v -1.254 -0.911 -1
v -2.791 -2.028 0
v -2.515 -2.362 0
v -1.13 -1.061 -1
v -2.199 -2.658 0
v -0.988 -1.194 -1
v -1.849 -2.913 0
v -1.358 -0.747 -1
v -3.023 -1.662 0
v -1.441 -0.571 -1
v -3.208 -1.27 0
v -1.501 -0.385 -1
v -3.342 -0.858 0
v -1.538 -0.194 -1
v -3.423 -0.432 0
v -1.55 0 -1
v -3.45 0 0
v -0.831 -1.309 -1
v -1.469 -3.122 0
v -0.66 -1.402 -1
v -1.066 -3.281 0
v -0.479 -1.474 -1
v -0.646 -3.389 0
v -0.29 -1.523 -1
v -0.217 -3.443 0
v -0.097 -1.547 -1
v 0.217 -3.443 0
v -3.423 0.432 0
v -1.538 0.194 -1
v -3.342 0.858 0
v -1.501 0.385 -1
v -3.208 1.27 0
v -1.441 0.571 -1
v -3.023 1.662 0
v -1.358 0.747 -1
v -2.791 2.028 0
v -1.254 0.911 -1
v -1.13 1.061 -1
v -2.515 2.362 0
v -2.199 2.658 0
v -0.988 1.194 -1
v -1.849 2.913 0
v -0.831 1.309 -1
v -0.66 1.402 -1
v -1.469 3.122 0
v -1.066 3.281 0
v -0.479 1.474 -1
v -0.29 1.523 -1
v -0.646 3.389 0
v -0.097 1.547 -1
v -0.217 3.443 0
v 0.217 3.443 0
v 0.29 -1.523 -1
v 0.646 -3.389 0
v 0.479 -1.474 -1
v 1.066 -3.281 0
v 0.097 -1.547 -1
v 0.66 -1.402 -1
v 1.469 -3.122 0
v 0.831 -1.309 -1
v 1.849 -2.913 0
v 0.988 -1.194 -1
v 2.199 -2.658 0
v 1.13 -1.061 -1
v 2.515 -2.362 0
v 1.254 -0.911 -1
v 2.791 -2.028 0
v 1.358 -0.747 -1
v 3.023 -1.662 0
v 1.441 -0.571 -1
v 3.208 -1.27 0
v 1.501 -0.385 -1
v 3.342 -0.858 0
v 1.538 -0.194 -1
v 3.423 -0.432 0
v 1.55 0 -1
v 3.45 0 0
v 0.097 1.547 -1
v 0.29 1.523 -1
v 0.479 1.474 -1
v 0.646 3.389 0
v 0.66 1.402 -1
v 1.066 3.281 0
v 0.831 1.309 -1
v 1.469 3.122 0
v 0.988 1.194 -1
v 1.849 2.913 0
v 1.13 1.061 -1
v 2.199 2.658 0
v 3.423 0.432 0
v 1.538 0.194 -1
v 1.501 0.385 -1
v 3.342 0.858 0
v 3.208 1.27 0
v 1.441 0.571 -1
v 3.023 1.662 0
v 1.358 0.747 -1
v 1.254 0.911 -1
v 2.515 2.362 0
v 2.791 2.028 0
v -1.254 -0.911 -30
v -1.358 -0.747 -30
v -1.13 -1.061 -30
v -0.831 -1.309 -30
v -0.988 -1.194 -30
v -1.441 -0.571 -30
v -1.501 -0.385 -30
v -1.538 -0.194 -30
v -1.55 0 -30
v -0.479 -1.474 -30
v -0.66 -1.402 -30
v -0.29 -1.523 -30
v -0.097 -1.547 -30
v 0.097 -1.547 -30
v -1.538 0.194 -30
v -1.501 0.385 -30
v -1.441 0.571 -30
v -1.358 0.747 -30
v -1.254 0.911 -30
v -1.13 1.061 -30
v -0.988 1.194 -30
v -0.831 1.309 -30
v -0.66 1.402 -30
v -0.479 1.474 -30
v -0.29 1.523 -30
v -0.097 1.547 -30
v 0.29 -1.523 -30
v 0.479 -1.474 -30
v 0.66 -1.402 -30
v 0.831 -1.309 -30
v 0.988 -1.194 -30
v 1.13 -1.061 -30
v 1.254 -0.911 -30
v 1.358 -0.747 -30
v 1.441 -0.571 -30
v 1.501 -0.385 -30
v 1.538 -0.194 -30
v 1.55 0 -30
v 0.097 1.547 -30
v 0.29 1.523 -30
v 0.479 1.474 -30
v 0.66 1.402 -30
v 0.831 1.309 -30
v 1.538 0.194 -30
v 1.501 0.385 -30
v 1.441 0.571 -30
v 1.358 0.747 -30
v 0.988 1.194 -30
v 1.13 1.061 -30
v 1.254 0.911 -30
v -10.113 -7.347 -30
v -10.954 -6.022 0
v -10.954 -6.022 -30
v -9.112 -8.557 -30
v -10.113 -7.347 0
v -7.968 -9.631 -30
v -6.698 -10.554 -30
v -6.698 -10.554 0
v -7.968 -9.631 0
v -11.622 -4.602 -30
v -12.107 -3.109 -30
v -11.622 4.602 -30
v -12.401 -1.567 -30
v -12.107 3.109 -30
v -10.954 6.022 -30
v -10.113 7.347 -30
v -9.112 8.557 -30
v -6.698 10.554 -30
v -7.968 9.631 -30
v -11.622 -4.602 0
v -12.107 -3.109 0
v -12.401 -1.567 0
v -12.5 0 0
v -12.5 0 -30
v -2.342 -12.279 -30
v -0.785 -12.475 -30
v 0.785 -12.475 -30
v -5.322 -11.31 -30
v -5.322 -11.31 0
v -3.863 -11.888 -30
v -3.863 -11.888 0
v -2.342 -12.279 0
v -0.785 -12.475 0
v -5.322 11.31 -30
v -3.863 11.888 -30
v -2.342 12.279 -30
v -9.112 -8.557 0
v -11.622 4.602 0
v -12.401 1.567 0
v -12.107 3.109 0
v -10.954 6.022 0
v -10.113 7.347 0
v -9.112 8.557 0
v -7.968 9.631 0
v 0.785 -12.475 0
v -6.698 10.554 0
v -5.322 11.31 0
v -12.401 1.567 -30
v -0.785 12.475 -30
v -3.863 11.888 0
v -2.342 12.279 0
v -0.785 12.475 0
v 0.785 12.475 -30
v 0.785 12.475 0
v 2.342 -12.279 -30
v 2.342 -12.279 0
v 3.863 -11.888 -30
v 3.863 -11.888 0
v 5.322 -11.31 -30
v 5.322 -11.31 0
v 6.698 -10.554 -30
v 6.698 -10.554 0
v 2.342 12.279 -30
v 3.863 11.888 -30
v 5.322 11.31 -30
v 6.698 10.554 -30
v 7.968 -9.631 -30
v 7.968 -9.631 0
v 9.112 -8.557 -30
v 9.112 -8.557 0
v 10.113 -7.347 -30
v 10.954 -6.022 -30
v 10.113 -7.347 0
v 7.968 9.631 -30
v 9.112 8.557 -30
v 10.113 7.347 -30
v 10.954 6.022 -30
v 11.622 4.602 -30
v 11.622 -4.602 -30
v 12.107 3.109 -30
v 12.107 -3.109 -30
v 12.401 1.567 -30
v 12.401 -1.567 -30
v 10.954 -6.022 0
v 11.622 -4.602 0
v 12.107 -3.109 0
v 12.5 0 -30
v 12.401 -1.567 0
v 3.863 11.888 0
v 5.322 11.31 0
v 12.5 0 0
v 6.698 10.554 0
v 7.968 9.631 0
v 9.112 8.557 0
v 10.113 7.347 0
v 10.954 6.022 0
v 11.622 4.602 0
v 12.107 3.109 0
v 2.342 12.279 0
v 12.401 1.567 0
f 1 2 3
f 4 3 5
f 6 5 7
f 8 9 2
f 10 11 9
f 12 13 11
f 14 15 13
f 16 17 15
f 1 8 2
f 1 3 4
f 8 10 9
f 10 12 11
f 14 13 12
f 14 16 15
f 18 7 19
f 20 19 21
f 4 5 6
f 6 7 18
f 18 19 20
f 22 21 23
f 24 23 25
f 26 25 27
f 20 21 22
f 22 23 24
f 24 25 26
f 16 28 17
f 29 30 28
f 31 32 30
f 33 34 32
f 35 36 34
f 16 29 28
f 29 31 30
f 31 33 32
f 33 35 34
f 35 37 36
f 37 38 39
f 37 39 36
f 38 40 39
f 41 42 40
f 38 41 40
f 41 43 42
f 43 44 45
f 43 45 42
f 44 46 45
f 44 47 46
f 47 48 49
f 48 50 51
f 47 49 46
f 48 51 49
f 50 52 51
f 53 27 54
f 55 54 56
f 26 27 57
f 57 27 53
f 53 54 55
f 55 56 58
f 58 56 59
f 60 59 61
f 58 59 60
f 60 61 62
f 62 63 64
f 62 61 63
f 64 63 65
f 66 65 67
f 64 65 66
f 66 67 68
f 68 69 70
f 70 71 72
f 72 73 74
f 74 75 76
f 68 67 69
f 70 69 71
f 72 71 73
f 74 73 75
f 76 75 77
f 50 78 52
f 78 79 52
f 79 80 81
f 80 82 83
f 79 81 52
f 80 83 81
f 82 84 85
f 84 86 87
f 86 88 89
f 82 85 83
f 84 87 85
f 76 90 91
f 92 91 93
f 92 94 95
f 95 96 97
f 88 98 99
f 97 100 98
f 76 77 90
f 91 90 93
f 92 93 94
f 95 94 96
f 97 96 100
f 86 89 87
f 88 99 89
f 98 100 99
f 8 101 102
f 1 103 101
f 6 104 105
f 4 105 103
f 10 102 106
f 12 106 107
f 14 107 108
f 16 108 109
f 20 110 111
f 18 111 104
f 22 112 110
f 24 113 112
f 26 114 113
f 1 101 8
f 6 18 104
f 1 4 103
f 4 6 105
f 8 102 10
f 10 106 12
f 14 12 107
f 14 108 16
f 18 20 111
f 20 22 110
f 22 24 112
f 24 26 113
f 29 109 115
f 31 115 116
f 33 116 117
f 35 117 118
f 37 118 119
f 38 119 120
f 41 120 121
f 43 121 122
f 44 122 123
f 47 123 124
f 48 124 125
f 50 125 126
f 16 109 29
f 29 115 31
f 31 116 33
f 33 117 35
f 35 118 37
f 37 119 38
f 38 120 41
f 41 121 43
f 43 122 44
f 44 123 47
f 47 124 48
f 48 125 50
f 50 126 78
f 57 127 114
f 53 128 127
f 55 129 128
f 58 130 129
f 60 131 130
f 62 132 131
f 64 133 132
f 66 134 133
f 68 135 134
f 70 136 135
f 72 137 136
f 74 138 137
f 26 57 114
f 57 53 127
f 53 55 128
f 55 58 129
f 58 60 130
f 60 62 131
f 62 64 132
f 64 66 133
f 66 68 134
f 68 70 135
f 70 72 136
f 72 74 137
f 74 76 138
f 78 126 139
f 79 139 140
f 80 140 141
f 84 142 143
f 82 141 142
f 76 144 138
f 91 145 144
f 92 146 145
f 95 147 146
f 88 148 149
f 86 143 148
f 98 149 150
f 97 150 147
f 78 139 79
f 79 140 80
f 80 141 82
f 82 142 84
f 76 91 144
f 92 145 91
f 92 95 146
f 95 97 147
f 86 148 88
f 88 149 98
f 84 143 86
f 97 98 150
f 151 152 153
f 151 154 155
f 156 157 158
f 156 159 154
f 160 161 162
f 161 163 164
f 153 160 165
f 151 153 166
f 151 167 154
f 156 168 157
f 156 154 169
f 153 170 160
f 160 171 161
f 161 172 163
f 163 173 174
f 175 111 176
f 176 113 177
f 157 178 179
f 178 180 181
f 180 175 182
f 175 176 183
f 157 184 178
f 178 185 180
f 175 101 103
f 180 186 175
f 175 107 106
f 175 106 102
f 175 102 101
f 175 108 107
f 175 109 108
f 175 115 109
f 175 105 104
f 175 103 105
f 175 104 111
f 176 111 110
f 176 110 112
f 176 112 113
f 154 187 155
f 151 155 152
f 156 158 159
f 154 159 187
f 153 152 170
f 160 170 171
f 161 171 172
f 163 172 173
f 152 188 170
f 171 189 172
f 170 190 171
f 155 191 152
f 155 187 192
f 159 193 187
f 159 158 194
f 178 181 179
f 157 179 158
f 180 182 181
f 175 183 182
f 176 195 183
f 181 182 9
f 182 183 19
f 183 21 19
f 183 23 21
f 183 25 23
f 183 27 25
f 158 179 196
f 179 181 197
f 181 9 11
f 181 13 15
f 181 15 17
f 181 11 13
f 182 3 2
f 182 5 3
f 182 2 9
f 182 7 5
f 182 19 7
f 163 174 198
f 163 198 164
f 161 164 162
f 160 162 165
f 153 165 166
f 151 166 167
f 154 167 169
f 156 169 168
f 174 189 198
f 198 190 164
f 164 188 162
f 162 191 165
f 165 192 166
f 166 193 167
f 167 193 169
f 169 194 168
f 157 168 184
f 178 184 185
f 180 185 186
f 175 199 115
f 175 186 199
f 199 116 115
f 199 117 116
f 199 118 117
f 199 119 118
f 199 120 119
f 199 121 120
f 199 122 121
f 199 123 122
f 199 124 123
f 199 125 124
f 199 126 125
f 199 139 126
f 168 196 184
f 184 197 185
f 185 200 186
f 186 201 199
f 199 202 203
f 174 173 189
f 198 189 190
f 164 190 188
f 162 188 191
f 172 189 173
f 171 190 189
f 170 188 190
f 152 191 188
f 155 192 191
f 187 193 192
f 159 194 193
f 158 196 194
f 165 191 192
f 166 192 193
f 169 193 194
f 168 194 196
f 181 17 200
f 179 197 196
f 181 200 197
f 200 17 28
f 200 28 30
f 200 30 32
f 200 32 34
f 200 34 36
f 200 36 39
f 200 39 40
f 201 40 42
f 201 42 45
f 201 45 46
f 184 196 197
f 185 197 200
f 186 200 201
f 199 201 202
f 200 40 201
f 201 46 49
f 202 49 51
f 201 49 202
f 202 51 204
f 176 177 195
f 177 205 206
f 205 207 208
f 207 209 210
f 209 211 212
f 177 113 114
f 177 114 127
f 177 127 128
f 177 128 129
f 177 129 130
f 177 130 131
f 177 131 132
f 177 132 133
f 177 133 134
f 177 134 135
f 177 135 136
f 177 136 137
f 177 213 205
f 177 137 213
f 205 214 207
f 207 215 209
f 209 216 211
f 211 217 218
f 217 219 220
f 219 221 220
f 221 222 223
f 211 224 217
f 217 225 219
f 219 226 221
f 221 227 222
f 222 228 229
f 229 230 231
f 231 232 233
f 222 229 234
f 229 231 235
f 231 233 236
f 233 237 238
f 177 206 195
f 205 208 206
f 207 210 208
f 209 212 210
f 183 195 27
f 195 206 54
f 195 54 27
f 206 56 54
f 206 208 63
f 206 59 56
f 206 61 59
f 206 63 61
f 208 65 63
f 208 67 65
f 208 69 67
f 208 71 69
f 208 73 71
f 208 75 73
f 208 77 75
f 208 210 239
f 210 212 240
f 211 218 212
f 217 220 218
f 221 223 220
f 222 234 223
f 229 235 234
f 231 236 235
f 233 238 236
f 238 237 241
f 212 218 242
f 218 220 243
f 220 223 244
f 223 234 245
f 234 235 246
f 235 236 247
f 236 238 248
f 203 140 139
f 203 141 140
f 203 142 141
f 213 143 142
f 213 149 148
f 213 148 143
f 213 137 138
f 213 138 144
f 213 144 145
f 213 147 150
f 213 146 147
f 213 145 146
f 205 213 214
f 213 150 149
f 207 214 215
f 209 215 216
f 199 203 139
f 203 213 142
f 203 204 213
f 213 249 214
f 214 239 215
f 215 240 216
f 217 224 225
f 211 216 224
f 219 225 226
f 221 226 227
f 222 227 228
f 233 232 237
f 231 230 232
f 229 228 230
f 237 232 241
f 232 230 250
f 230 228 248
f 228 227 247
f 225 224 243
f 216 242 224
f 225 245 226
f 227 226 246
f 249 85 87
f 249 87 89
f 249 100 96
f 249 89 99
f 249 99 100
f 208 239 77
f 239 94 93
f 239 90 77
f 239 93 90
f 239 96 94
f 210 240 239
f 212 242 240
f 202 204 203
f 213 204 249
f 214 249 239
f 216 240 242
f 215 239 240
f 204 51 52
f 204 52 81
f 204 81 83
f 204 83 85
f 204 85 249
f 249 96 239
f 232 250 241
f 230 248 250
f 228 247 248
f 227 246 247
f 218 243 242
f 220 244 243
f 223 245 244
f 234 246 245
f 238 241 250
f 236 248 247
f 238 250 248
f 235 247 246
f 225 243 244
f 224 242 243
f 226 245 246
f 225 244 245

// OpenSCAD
$fn = 50;

difference() {
	union() {
		translate(v = [0, 0, -30.0]) {
			cylinder(h = 30, r = 12.5);
		}
	}
	union() {
		translate(v = [0, 0, 0]) {
			rotate(a = [0, 0, 0]) {
				difference() {
					union() {
						translate(v = [0, 0, -33.0]) {
							cylinder(h = 33, r = 1.25);
						}
						translate(v = [0, 0, -1.0]) {
							cylinder(h = 1.0, r1 = 1.55, r2 = 3.45);
						}
						translate(v = [0, 0, -33.0]) {
							cylinder(h = 33, r = 1.55);
						}
						translate(v = [0, 0, -33.0]) {
							cylinder(h = 33, r = 1.25);
						}
					}
					union();
				}
			}
		}
	}
}
